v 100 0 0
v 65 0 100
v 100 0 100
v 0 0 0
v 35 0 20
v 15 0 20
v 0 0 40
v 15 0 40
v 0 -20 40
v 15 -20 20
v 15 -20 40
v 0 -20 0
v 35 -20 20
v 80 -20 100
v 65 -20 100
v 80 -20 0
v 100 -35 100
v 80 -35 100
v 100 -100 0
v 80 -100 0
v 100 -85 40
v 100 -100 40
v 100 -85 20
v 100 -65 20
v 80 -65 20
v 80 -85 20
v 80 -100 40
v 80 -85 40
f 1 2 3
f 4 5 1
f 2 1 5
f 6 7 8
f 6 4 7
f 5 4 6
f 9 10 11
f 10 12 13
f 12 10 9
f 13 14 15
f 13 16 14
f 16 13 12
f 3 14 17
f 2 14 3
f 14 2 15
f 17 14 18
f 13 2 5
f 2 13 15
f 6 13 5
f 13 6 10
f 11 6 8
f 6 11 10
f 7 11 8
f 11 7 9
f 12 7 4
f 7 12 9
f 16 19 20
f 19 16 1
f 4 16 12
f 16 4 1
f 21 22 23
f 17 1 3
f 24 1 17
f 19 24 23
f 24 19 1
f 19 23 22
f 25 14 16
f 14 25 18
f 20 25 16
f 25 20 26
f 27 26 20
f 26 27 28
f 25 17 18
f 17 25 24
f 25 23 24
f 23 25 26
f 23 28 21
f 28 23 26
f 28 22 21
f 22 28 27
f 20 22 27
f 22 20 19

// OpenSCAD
// x軸方向に90度回転
rotate([90, 0, 0]){

	color("red")

	// 厚みを20mmに設定
	linear_extrude(20){

		polygon(points=[[0, 0], [0, 40], [15, 40], [15, 20], [35, 20], [65, 100], [100, 100], [100, 0]]); //時計回り

	}

}

// x方向に80mm,y軸方向に-100mm移動
translate([80, -100, 0]){

	// x軸とz軸方向に90度回転
	rotate([90, 0, 90]){

		// 厚みを20mmに設定
		linear_extrude(20){

			polygon(points=[[0, 0], [0, 40], [15, 40], [15, 20], [35, 20], [65, 100], [100, 100], [100, 0]]); //時計回り

		}
		
	}

}
